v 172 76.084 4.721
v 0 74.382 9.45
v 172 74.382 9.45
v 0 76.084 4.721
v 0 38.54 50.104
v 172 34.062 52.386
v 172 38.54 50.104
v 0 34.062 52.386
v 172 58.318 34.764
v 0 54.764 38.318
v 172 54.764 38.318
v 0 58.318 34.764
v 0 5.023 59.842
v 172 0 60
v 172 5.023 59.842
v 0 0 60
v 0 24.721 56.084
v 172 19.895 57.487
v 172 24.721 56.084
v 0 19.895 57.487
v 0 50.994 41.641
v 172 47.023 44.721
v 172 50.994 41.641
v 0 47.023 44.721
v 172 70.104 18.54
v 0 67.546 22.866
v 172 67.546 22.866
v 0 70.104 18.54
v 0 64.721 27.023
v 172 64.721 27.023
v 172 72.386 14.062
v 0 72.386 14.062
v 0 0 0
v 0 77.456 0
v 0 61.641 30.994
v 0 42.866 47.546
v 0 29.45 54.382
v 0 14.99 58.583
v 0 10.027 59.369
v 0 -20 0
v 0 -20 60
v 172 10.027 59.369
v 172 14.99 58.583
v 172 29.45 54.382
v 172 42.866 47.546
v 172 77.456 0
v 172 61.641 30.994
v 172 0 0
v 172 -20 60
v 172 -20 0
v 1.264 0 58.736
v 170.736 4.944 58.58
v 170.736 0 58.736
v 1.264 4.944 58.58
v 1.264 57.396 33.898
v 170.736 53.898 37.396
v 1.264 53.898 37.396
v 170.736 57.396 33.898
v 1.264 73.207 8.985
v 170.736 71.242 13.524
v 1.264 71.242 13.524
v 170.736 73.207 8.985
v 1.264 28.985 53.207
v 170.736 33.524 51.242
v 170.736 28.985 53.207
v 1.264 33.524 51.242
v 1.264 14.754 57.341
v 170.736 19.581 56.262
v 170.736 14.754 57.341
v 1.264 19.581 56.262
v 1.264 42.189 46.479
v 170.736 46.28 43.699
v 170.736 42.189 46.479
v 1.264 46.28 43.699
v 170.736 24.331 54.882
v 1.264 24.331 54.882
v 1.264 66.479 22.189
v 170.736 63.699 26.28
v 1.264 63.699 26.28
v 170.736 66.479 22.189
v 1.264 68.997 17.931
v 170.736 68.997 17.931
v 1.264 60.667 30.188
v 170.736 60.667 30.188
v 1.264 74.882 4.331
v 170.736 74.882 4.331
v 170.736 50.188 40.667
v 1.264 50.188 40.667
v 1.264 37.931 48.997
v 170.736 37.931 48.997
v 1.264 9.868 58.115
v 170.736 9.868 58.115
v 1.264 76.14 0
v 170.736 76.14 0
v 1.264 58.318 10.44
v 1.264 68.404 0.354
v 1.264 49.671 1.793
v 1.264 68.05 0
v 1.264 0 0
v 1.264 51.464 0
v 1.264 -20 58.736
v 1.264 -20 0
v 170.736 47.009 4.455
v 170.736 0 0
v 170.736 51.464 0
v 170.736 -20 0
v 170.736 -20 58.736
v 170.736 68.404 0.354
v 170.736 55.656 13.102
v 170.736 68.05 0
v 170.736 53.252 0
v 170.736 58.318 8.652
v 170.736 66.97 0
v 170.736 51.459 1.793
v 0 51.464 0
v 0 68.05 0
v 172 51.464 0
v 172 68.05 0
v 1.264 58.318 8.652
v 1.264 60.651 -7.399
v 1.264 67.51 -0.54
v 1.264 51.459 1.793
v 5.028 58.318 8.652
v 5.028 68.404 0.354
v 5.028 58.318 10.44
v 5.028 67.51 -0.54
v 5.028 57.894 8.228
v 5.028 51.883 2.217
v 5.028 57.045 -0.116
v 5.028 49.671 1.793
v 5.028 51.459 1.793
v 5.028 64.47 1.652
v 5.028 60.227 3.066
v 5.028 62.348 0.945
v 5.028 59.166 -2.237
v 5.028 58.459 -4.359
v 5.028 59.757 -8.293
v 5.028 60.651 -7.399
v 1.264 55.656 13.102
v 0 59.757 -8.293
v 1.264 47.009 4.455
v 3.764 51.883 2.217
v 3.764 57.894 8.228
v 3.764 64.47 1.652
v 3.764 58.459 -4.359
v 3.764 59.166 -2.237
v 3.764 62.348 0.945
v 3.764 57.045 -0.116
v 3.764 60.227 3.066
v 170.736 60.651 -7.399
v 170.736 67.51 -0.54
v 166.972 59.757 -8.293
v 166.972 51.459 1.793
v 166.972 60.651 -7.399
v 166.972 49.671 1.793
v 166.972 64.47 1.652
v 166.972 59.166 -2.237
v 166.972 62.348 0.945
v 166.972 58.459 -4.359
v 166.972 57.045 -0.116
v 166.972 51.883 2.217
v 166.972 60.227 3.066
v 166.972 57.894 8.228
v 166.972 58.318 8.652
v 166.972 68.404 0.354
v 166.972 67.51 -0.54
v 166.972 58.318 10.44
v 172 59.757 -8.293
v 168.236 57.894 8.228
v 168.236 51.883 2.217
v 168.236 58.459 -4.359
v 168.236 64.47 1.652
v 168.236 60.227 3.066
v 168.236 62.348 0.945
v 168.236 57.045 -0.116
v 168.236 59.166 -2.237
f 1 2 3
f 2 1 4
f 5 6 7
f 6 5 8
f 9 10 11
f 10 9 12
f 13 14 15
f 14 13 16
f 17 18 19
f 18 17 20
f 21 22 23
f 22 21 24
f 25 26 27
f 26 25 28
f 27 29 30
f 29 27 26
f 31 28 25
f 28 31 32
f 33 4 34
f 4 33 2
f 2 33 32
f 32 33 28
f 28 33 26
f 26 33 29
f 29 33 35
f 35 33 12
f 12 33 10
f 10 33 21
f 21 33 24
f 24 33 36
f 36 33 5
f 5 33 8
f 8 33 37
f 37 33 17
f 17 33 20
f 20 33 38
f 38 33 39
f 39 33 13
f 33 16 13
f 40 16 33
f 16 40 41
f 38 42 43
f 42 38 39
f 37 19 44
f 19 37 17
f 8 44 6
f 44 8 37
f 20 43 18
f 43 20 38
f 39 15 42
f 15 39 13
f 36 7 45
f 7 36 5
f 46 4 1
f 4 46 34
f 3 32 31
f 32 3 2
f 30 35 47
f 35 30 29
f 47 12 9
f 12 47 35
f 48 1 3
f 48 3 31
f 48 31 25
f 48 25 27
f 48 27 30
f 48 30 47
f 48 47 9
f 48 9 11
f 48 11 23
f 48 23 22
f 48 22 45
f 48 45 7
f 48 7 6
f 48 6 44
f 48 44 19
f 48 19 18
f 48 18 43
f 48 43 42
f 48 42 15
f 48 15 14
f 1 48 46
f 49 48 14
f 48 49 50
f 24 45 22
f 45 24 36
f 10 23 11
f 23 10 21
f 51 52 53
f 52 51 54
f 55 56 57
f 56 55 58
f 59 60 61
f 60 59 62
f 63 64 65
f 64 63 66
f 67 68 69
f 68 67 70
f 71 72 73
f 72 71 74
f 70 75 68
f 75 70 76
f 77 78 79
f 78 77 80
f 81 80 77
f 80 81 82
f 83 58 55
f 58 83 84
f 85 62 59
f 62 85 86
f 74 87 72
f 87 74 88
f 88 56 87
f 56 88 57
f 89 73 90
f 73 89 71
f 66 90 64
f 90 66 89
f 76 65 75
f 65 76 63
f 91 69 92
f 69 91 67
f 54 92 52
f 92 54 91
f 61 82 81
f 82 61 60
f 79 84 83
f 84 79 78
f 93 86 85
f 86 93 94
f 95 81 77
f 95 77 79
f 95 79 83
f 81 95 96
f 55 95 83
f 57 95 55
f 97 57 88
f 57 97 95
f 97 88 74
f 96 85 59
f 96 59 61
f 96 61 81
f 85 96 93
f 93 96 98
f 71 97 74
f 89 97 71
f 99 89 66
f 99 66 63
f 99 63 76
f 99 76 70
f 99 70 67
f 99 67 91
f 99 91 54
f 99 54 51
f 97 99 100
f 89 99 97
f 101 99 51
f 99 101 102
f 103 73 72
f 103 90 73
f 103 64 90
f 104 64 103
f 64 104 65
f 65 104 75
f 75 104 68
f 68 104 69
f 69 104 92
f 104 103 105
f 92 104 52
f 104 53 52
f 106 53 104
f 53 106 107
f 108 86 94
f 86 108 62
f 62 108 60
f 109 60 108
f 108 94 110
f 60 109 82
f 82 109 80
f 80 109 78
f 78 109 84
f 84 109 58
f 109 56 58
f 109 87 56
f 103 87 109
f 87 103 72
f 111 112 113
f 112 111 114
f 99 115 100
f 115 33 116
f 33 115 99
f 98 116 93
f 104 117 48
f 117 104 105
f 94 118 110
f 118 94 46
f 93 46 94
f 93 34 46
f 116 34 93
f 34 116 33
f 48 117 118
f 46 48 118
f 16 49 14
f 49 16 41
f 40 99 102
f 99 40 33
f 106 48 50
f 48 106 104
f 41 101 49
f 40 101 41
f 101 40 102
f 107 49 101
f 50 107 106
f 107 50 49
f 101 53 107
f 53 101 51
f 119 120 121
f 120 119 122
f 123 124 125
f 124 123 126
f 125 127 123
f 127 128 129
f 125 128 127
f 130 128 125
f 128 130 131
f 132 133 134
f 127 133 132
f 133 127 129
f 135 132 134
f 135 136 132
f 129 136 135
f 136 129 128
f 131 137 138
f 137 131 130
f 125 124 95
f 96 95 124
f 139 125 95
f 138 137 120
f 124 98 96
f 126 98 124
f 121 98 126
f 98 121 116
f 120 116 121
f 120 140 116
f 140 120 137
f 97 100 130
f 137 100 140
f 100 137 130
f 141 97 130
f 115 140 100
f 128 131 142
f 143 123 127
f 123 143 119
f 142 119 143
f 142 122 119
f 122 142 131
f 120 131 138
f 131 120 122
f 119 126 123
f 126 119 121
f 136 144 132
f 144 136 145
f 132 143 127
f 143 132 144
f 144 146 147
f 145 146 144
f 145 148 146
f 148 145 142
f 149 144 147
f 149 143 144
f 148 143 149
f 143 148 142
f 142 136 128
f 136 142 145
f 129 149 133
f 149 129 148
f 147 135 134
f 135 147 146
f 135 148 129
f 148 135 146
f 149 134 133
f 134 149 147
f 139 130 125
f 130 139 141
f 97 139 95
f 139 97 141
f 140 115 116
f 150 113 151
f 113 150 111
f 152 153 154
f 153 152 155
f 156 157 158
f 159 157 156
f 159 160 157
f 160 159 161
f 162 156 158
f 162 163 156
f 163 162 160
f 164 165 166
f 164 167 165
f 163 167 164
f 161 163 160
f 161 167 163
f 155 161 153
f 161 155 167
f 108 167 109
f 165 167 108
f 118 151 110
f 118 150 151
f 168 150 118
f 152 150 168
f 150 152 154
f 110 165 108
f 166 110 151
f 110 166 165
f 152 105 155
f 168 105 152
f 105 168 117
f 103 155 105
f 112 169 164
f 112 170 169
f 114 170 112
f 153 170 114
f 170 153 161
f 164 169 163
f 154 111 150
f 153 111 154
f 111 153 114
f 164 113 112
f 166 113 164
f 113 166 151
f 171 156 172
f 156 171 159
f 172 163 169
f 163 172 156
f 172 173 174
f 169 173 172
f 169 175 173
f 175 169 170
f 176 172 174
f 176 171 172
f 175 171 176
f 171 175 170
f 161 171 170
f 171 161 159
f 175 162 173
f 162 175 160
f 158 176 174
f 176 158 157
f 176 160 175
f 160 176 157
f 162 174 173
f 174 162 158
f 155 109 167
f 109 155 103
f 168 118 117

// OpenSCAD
// file: wall_thickness.scad
//prusaslicer wall thickness function, optionally rounded to 2 decimal places (as given in the software)

function wt(layer_height, extrusion_width, perimeters=1, rounding=true) =
    rounding ?
        round( 100 * (
            (perimeters - 1)
            *(extrusion_width - layer_height * (1 - PI/4))
            + extrusion_width
            )) / 100
    :
        (perimeters - 1)
        *(extrusion_width - layer_height * (1 - PI/4))
        + extrusion_width
    ;

for (i = [1:8]) {
    echo(wt(0.2, 0.45, i, false));
}
// file: mirror_offset.scad
//mirrors an object at a plane through a point

module mirror_offset(v, p=[0,0,0], duplicate=false)
{
    
    mirror(v)
    translate(-2*p)
    children();
    
    if(duplicate){ children(); }
    
}
// file: fillet.scad
module fillet(l=2, r=2, a=90, center=true, v=[1,1,0], p=[0,0,0])
{
    
    v_norm=[ v[0], -v[1], -v[2] ]/sqrt(v*v); //corrected axis of v and normalised
    rotation_vector=(v[1]==0 && v[2]==0) ? [0,0,1] : cross(v_norm, [1,0,0]); //takes into account edge case of parallel start and finish vectors resulting in zero vector for cross product
    rotation_angle=acos(v_norm*[1,0,0]);
    
    translate(p)
    rotate(a=rotation_angle, v=rotation_vector)
    translate([0, 0, center ? -l/2 : 0])
    rotate([0,0,-a/2])
    difference()
    {
        
        x2=r/tan(a/2);
        x1=x2*cos(a);
        y1=x2*sin(a);
        
        linear_extrude(l)
        polygon([ [0,0], [x2,0], [x1,y1] ]);
        
        translate([x2, r, -1])
        cylinder(r=r, h=l+2);
        
    }
    
}

//fillet($fn=50);


// l = longitudal length of the chamfer
// d = distance of the chamfer
// a = interior angle of the chamfer
// center = whether the chamfer is centered on the origin
// edge = the angle of the chamfer to the horizontal (x-y plane)
// v = a vector normal to the face of the chamfer
// p = the position of the chamfer
module chamfer(l=2, d=2, a=90, center=true, edge=0, v=[1,1,0], p=[0,0,0])
{
    
    x1=d*cos(a);
    y1=d*sin(a);
    
    v_norm=[ v[0], -v[1], -v[2] ]/sqrt(v*v); //corrected axis of v and normalised
    rotation_vector=(v[1]==0 && v[2]==0) ? [0,0,1] : cross(v_norm, [1,0,0]); //takes into account edge case of parallel start and finish vectors resulting in zero vector for cross product
    rotation_angle=acos(v_norm*[1,0,0]);
    
    translate(p)
    rotate(a=rotation_angle, v=rotation_vector)
    rotate([edge,0,0])
    translate([0, 0, center ? -l/2 : 0])
    rotate([0,0,-a/2])
    linear_extrude(l)
    polygon([ [0,0], [d,0], [x1,y1] ]);
    
}

//chamfer();
// file: snap_fit.scad
module hook (a1=1, a2=1, a3=2.5, a4=50, a5=50, b1=2, b2=5.5, b3=1.4, b4=2.5, b5=2)
{
    
    //total_length=b2 + a2/tan(a4) + a1 + a2/tan(a5);
    total_length=b2 + a3;
    echo(str("Hook Total Length is: ", total_length, "mm"));
    
    end_width=b4 - 2*(((b4 - b5)/2 / b2) * total_length);
    echo(str("Hook End Width is: ", end_width, "mm"));
    
    beam_taper=atan(((b4-end_width)/2) / total_length);
    echo(str("Hook Beam X Taper is: ", beam_taper, " degrees"));
    
//    translate([0, -b1/2, -b4/2]) //use to centre on origin
    difference()
    {
        
        linear_extrude(b4, convexity=2)
        polygon([   [0, 0], 
                    [0, b1], 
                    [b2, b1], 
                    [b2 + a2/tan(a4), b1 + a2], 
                    [b2 + a2/tan(a4) + a1, b1 + a2],
                    [total_length, b1 + a2 - tan(a5)*(a3 - a1 - a2/tan(a4))],
                    [total_length, b1 - b3] 
                ]);        
        
        rotate([0, -beam_taper, 0])
        translate([0, -1, -1.5*b4])
        cube([1.5*total_length, b1 + a2 + 2, 1.5*b4]);
        
        mirror([0,0,1])
        translate([0,0,-b4])
        rotate([0, -beam_taper, 0])
        translate([0, -1, -1.5*b4])
        cube([1.5*total_length, b1 + a2 + 2, 1.5*b4]);
        
    }
    
}

//hook();

module loop (c1=3, c2=5, c3=2, c4=1, d1=0.5, d2=1.5, d3=0.5, d4=0.5)
{
    
    clip_taper=atan((c3 - c4)/c2);
    echo(str("Clip Taper is: ", clip_taper, " degrees"));
    
//    translate([0, -c1/2, -c3/2]) //use to centre on origin
    difference()
    {
        
        cube([c2, c1, c3]);
        
        translate([c2 - d4 - d2, d3, -1])
        cube([d2, c1 - d1 - d3, c3 + 2]);
        
        rotate([0, -clip_taper, 0])
        translate([0, -1, -c3])
        cube([1.5*c2, c1 + 2, c3]);
        
    }
    
}

//loop();
// main file
//non-modular quick print

// whole vent 15-20 from horizontal
// individual vents 45-50 from horizontal

use <snap_fit.scad>
use <fillet.scad>
use <mirror_offset.scad>
use <wall_thickness.scad>

$fn=100;
//wall_thickness=1.26; //3 perims, 0.2lh, 0.45ew
wall_thickness=wt(0.2, 0.45, 3, rounding=false);
echo(wall_thickness);

clip=false;
duct=true;

////test
test=false;
if(test)
{
    difference() {
        translate([0, 15, 0])
        union() {
            translate([0,0,13+wall_thickness])
            rotate([0,180,0])
            catch();
            
            cube([wall_thickness, 9.7+2*wall_thickness, 13+wall_thickness]);
        }
        
        translate([-499,-499,-50])
        cube([999,999,50]);
    }

    clip();
}
////test

if(clip)
{
    clip();
}


if(duct)
{
    union()
    {
        difference()
        {
            translate([0,0,-20])
            difference()
            {
                
                rotate([0, 90, 0])
                cylinder(r=80, h=172);
                
                translate([wall_thickness, 0, 0])
                rotate([0, 90, 0])
                cylinder(r=80 - wall_thickness, h=172 - 2*wall_thickness);
                
                translate([-499, -80, -499])
                cube([999, 80, 999]);
                
                translate([-499, -499, -81])
                cube([999, 999, 81]);
                
            }
            translate([-499, -499, -21])
            cube([999, 999, 21]);
        }
        
        difference()
        {
            translate([0, -20, 0])
            cube([172, 20, 60]);
            
            translate([wall_thickness, -21, -1])
            cube([172 - 2*wall_thickness, 21 + 0.01, 60 - wall_thickness + 1]);
        }
        
        mirror_offset(v=[1,0,0], p=[172/2,0,0], duplicate=true)
        translate([wall_thickness,80-16 - 6*sin(45),(-9.2-2*wall_thickness)*sin(45)])
        rotate([45, 0, 0])
        catch();

        translate([wall_thickness,80-16 - 6*sin(45) + 1.5*wall_thickness,(-9.2-2*wall_thickness)*sin(45)])
        rotate([45,0,0])
        rotate([0,90,0])
        %clip();
                
    }
}


module catch()
{
    
    difference()
    {
        cube([2.5, 9.7, 13] + wall_thickness*[1,2,1]);
        
        translate([-1, wall_thickness, -1])
        cube([2.5 + wall_thickness + 2, 9.7, 13 + 1]);
    }
    
    translate([2.5, wall_thickness + (9.7 - 8.5)/2, 13])
    rotate([0,90,0])
    loop(c1=8.5, c2=5+2.8+1+0.5, c3=wall_thickness, c4=wall_thickness, d1=2, d2=3, d3=2, d4=1);
    
    chamfer(l=9.7+2*wall_thickness, d=2.5+wall_thickness, p=[0, 9.7/2 + wall_thickness, 13+wall_thickness], v=[1,0,1], edge=90);
    
    translate([-wall_thickness,0,0])
    cube([wall_thickness, 9.7+2*wall_thickness, 13+wall_thickness]);
    
}
//catch();

module clip()
{
    //rotate([0,-90,0])
    translate([13,0,0])
    union()
    {
        
        hook(a2=1.5, a3=4.5, b2=12, b1=3, b3=2.4, b4=2.5, b5=2.5);
        
        translate([0,9.2,0])
        mirror([0,1,0])
        hook(a2=1.5, a3=4.5, b2=12, b1=3, b3=2.4, b4=2.5, b5=2.5);
        
        translate([0,2.5,0])
        rotate([90,0,180])
        hook(b4=4.2, b1=2.5, b5=4.2, b3=2.5, a1=0, a4=90, a5=13.5, a2=0.8, a3=2.5);
        
        translate([-13,0,0])
        cube([5,9.2,2.5]);
        translate([-8,0,0])
        cube([8,2.5,2.5]);
        translate([-8,6.7,0])
        cube([8,2.5,2.5]);
        
        mirror_offset(v=[0,1,0], p=[0,9.2/2,0], duplicate=true)
        fillet(l=2.5, r=3.2/4, v=[1,1,0], p=[0,3,0], center=false);
        
    }
}
//clip();
